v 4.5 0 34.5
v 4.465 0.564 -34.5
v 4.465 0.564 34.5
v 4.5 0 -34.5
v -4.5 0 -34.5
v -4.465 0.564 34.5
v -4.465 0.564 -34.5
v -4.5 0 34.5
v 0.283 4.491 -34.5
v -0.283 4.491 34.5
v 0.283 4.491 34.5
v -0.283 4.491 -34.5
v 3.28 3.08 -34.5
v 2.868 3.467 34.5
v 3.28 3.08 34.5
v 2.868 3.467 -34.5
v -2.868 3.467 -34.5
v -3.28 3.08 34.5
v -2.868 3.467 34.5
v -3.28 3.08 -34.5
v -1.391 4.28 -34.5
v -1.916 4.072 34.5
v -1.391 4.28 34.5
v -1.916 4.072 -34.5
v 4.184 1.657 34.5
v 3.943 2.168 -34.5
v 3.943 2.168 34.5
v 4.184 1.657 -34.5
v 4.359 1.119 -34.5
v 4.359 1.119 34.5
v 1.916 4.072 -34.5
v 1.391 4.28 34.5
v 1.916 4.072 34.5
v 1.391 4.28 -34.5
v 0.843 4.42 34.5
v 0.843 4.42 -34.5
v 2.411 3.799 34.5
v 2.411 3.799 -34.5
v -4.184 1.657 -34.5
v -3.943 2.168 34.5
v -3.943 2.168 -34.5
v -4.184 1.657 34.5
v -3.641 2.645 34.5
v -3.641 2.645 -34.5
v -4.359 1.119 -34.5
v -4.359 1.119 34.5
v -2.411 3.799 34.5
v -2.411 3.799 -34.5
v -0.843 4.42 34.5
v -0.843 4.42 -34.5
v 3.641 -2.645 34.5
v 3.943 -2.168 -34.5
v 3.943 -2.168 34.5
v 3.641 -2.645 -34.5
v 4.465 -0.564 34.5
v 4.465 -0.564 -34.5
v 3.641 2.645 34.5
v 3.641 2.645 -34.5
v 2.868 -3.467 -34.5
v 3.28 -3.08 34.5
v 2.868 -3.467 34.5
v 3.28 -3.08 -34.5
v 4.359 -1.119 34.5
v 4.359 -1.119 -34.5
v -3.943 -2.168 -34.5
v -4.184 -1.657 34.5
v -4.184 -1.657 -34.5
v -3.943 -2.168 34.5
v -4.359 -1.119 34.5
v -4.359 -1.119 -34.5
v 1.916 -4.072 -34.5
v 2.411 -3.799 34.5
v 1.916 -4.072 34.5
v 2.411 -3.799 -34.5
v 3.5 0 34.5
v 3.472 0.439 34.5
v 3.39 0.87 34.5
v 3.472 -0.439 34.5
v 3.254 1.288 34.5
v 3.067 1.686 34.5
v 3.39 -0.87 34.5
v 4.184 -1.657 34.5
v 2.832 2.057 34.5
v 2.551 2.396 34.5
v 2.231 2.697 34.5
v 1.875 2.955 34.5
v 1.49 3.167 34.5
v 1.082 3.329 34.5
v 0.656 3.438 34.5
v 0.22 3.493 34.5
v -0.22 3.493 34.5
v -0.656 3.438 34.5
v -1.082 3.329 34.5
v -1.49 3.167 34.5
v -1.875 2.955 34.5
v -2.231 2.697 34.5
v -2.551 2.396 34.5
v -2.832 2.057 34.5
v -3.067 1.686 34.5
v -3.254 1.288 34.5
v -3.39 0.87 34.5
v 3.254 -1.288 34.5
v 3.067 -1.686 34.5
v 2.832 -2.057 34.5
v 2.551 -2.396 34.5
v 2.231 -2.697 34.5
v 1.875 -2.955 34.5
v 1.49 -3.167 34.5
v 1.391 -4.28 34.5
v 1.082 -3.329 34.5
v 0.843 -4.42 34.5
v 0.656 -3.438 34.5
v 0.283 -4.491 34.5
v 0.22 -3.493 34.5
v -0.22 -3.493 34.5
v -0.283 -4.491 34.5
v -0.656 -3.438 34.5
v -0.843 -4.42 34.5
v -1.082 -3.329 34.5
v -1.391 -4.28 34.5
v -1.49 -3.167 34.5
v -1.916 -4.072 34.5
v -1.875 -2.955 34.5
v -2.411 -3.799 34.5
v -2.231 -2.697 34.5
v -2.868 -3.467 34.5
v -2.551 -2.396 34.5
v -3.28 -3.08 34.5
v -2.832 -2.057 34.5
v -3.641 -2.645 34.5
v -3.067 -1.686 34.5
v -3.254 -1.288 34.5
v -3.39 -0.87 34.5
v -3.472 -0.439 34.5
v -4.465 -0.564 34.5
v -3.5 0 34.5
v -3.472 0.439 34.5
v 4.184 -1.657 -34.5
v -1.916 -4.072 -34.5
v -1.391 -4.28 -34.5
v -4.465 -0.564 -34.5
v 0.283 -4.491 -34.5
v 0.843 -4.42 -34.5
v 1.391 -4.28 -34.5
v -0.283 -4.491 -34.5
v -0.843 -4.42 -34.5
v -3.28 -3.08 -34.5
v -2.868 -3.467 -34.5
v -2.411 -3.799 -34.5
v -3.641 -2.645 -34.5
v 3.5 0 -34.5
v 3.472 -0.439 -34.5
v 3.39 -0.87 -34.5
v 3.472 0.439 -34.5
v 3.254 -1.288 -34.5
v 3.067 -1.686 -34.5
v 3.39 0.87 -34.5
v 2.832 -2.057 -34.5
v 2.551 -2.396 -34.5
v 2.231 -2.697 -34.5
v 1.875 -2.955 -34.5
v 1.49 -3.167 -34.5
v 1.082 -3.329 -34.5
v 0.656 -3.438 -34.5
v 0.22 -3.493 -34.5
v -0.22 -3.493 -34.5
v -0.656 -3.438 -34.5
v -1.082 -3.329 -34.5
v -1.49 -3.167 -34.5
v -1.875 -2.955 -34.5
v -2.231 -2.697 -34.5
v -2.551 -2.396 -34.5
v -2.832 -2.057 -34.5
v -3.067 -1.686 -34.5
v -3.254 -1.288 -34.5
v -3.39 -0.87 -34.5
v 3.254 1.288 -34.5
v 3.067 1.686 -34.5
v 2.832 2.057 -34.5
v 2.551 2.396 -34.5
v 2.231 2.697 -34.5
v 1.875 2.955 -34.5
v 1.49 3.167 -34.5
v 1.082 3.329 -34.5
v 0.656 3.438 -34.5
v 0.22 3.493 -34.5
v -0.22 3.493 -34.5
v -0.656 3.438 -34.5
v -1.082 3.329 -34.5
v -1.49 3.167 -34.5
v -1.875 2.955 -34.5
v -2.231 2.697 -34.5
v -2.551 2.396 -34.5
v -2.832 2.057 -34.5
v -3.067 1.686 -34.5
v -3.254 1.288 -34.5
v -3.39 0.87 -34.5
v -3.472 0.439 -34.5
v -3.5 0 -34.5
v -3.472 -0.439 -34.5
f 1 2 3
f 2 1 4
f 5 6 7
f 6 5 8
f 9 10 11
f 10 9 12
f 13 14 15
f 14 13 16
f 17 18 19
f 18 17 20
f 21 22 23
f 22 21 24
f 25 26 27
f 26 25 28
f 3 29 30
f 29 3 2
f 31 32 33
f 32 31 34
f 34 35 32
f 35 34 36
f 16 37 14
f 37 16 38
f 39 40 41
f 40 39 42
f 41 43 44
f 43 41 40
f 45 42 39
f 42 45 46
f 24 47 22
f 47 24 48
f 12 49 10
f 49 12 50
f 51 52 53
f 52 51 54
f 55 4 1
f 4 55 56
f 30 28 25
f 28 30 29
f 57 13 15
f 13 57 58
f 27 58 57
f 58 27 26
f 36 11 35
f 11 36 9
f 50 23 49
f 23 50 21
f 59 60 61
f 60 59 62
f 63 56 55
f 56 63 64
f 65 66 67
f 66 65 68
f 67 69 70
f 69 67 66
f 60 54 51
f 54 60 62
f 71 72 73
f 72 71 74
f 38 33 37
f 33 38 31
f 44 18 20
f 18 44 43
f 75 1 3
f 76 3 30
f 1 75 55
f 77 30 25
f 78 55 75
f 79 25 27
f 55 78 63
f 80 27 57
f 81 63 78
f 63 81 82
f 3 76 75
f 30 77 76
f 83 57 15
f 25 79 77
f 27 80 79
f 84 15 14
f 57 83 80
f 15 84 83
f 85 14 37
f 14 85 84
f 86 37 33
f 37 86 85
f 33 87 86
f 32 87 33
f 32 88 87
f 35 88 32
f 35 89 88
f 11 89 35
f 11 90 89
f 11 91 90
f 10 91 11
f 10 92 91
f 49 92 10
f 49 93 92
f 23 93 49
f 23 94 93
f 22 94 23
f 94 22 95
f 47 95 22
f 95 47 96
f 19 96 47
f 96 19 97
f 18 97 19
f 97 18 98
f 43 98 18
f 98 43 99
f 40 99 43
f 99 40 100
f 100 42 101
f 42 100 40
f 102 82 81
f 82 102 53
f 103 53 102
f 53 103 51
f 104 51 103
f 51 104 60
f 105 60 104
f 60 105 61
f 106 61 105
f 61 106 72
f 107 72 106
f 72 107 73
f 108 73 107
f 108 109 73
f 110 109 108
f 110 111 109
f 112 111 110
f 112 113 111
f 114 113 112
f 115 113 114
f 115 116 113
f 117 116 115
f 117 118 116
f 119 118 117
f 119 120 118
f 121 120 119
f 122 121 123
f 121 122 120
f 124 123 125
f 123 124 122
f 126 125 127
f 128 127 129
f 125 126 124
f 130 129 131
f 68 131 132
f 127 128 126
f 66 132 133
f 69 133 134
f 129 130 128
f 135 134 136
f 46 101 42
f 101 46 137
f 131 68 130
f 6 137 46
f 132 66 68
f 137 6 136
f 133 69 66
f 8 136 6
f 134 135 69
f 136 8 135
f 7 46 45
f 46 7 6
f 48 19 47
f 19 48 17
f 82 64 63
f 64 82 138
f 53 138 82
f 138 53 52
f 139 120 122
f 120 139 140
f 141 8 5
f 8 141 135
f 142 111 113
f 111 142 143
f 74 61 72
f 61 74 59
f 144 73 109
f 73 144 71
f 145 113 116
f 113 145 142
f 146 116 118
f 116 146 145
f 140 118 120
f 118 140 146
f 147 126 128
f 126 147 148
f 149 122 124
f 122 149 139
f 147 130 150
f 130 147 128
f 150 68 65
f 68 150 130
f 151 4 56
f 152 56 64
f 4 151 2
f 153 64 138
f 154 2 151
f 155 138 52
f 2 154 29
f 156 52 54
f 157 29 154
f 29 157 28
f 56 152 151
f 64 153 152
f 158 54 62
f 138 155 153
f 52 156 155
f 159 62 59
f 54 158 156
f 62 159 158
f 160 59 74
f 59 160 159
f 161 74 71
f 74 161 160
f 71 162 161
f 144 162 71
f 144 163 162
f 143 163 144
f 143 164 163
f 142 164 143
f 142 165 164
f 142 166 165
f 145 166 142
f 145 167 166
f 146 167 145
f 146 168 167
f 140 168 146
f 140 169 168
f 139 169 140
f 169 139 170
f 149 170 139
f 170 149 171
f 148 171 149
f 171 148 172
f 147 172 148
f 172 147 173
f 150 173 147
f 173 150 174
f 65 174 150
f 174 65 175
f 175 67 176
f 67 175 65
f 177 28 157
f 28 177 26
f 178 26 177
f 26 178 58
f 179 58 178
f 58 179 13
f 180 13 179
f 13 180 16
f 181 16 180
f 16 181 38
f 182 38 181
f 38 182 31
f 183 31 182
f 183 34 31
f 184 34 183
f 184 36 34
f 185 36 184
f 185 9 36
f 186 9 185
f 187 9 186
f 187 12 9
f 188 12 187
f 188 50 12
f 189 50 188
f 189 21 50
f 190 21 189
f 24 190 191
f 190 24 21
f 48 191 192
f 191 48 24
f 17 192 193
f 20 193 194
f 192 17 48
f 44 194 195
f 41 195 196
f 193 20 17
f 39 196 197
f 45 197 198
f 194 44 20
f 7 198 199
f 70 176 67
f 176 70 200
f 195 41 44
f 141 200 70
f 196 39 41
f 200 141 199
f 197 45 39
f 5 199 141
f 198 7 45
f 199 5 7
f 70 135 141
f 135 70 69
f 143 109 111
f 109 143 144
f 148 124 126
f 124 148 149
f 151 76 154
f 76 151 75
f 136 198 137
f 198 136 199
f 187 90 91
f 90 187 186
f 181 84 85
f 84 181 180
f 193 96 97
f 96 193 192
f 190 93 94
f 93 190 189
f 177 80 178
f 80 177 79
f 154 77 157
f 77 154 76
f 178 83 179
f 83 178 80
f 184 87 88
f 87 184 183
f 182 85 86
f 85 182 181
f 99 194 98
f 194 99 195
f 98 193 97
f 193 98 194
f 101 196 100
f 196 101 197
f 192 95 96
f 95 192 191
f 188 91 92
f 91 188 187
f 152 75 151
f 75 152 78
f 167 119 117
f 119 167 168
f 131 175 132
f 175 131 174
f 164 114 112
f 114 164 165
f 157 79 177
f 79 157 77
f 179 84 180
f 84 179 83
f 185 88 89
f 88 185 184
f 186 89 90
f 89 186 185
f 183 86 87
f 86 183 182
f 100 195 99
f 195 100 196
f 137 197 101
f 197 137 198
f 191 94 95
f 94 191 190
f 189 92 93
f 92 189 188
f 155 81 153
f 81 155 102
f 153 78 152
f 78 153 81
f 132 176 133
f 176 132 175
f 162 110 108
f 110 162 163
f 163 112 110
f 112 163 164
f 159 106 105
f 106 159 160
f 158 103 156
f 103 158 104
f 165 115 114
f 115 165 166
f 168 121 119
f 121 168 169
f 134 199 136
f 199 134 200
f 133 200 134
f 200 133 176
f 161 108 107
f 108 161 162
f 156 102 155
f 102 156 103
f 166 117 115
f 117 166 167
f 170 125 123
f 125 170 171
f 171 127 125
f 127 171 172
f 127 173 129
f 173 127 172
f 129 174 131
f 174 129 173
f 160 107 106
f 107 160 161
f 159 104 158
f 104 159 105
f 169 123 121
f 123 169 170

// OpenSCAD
$fn = 50;


difference() {
	union() {
		translate(v = [0, 0, -34.5000000000]) {
			cylinder(h = 69, r = 4.5000000000);
		}
	}
	union() {
		translate(v = [0, 0, -100.0000000000]) {
			cylinder(h = 200, r = 3.5000000000);
		}
	}
}
